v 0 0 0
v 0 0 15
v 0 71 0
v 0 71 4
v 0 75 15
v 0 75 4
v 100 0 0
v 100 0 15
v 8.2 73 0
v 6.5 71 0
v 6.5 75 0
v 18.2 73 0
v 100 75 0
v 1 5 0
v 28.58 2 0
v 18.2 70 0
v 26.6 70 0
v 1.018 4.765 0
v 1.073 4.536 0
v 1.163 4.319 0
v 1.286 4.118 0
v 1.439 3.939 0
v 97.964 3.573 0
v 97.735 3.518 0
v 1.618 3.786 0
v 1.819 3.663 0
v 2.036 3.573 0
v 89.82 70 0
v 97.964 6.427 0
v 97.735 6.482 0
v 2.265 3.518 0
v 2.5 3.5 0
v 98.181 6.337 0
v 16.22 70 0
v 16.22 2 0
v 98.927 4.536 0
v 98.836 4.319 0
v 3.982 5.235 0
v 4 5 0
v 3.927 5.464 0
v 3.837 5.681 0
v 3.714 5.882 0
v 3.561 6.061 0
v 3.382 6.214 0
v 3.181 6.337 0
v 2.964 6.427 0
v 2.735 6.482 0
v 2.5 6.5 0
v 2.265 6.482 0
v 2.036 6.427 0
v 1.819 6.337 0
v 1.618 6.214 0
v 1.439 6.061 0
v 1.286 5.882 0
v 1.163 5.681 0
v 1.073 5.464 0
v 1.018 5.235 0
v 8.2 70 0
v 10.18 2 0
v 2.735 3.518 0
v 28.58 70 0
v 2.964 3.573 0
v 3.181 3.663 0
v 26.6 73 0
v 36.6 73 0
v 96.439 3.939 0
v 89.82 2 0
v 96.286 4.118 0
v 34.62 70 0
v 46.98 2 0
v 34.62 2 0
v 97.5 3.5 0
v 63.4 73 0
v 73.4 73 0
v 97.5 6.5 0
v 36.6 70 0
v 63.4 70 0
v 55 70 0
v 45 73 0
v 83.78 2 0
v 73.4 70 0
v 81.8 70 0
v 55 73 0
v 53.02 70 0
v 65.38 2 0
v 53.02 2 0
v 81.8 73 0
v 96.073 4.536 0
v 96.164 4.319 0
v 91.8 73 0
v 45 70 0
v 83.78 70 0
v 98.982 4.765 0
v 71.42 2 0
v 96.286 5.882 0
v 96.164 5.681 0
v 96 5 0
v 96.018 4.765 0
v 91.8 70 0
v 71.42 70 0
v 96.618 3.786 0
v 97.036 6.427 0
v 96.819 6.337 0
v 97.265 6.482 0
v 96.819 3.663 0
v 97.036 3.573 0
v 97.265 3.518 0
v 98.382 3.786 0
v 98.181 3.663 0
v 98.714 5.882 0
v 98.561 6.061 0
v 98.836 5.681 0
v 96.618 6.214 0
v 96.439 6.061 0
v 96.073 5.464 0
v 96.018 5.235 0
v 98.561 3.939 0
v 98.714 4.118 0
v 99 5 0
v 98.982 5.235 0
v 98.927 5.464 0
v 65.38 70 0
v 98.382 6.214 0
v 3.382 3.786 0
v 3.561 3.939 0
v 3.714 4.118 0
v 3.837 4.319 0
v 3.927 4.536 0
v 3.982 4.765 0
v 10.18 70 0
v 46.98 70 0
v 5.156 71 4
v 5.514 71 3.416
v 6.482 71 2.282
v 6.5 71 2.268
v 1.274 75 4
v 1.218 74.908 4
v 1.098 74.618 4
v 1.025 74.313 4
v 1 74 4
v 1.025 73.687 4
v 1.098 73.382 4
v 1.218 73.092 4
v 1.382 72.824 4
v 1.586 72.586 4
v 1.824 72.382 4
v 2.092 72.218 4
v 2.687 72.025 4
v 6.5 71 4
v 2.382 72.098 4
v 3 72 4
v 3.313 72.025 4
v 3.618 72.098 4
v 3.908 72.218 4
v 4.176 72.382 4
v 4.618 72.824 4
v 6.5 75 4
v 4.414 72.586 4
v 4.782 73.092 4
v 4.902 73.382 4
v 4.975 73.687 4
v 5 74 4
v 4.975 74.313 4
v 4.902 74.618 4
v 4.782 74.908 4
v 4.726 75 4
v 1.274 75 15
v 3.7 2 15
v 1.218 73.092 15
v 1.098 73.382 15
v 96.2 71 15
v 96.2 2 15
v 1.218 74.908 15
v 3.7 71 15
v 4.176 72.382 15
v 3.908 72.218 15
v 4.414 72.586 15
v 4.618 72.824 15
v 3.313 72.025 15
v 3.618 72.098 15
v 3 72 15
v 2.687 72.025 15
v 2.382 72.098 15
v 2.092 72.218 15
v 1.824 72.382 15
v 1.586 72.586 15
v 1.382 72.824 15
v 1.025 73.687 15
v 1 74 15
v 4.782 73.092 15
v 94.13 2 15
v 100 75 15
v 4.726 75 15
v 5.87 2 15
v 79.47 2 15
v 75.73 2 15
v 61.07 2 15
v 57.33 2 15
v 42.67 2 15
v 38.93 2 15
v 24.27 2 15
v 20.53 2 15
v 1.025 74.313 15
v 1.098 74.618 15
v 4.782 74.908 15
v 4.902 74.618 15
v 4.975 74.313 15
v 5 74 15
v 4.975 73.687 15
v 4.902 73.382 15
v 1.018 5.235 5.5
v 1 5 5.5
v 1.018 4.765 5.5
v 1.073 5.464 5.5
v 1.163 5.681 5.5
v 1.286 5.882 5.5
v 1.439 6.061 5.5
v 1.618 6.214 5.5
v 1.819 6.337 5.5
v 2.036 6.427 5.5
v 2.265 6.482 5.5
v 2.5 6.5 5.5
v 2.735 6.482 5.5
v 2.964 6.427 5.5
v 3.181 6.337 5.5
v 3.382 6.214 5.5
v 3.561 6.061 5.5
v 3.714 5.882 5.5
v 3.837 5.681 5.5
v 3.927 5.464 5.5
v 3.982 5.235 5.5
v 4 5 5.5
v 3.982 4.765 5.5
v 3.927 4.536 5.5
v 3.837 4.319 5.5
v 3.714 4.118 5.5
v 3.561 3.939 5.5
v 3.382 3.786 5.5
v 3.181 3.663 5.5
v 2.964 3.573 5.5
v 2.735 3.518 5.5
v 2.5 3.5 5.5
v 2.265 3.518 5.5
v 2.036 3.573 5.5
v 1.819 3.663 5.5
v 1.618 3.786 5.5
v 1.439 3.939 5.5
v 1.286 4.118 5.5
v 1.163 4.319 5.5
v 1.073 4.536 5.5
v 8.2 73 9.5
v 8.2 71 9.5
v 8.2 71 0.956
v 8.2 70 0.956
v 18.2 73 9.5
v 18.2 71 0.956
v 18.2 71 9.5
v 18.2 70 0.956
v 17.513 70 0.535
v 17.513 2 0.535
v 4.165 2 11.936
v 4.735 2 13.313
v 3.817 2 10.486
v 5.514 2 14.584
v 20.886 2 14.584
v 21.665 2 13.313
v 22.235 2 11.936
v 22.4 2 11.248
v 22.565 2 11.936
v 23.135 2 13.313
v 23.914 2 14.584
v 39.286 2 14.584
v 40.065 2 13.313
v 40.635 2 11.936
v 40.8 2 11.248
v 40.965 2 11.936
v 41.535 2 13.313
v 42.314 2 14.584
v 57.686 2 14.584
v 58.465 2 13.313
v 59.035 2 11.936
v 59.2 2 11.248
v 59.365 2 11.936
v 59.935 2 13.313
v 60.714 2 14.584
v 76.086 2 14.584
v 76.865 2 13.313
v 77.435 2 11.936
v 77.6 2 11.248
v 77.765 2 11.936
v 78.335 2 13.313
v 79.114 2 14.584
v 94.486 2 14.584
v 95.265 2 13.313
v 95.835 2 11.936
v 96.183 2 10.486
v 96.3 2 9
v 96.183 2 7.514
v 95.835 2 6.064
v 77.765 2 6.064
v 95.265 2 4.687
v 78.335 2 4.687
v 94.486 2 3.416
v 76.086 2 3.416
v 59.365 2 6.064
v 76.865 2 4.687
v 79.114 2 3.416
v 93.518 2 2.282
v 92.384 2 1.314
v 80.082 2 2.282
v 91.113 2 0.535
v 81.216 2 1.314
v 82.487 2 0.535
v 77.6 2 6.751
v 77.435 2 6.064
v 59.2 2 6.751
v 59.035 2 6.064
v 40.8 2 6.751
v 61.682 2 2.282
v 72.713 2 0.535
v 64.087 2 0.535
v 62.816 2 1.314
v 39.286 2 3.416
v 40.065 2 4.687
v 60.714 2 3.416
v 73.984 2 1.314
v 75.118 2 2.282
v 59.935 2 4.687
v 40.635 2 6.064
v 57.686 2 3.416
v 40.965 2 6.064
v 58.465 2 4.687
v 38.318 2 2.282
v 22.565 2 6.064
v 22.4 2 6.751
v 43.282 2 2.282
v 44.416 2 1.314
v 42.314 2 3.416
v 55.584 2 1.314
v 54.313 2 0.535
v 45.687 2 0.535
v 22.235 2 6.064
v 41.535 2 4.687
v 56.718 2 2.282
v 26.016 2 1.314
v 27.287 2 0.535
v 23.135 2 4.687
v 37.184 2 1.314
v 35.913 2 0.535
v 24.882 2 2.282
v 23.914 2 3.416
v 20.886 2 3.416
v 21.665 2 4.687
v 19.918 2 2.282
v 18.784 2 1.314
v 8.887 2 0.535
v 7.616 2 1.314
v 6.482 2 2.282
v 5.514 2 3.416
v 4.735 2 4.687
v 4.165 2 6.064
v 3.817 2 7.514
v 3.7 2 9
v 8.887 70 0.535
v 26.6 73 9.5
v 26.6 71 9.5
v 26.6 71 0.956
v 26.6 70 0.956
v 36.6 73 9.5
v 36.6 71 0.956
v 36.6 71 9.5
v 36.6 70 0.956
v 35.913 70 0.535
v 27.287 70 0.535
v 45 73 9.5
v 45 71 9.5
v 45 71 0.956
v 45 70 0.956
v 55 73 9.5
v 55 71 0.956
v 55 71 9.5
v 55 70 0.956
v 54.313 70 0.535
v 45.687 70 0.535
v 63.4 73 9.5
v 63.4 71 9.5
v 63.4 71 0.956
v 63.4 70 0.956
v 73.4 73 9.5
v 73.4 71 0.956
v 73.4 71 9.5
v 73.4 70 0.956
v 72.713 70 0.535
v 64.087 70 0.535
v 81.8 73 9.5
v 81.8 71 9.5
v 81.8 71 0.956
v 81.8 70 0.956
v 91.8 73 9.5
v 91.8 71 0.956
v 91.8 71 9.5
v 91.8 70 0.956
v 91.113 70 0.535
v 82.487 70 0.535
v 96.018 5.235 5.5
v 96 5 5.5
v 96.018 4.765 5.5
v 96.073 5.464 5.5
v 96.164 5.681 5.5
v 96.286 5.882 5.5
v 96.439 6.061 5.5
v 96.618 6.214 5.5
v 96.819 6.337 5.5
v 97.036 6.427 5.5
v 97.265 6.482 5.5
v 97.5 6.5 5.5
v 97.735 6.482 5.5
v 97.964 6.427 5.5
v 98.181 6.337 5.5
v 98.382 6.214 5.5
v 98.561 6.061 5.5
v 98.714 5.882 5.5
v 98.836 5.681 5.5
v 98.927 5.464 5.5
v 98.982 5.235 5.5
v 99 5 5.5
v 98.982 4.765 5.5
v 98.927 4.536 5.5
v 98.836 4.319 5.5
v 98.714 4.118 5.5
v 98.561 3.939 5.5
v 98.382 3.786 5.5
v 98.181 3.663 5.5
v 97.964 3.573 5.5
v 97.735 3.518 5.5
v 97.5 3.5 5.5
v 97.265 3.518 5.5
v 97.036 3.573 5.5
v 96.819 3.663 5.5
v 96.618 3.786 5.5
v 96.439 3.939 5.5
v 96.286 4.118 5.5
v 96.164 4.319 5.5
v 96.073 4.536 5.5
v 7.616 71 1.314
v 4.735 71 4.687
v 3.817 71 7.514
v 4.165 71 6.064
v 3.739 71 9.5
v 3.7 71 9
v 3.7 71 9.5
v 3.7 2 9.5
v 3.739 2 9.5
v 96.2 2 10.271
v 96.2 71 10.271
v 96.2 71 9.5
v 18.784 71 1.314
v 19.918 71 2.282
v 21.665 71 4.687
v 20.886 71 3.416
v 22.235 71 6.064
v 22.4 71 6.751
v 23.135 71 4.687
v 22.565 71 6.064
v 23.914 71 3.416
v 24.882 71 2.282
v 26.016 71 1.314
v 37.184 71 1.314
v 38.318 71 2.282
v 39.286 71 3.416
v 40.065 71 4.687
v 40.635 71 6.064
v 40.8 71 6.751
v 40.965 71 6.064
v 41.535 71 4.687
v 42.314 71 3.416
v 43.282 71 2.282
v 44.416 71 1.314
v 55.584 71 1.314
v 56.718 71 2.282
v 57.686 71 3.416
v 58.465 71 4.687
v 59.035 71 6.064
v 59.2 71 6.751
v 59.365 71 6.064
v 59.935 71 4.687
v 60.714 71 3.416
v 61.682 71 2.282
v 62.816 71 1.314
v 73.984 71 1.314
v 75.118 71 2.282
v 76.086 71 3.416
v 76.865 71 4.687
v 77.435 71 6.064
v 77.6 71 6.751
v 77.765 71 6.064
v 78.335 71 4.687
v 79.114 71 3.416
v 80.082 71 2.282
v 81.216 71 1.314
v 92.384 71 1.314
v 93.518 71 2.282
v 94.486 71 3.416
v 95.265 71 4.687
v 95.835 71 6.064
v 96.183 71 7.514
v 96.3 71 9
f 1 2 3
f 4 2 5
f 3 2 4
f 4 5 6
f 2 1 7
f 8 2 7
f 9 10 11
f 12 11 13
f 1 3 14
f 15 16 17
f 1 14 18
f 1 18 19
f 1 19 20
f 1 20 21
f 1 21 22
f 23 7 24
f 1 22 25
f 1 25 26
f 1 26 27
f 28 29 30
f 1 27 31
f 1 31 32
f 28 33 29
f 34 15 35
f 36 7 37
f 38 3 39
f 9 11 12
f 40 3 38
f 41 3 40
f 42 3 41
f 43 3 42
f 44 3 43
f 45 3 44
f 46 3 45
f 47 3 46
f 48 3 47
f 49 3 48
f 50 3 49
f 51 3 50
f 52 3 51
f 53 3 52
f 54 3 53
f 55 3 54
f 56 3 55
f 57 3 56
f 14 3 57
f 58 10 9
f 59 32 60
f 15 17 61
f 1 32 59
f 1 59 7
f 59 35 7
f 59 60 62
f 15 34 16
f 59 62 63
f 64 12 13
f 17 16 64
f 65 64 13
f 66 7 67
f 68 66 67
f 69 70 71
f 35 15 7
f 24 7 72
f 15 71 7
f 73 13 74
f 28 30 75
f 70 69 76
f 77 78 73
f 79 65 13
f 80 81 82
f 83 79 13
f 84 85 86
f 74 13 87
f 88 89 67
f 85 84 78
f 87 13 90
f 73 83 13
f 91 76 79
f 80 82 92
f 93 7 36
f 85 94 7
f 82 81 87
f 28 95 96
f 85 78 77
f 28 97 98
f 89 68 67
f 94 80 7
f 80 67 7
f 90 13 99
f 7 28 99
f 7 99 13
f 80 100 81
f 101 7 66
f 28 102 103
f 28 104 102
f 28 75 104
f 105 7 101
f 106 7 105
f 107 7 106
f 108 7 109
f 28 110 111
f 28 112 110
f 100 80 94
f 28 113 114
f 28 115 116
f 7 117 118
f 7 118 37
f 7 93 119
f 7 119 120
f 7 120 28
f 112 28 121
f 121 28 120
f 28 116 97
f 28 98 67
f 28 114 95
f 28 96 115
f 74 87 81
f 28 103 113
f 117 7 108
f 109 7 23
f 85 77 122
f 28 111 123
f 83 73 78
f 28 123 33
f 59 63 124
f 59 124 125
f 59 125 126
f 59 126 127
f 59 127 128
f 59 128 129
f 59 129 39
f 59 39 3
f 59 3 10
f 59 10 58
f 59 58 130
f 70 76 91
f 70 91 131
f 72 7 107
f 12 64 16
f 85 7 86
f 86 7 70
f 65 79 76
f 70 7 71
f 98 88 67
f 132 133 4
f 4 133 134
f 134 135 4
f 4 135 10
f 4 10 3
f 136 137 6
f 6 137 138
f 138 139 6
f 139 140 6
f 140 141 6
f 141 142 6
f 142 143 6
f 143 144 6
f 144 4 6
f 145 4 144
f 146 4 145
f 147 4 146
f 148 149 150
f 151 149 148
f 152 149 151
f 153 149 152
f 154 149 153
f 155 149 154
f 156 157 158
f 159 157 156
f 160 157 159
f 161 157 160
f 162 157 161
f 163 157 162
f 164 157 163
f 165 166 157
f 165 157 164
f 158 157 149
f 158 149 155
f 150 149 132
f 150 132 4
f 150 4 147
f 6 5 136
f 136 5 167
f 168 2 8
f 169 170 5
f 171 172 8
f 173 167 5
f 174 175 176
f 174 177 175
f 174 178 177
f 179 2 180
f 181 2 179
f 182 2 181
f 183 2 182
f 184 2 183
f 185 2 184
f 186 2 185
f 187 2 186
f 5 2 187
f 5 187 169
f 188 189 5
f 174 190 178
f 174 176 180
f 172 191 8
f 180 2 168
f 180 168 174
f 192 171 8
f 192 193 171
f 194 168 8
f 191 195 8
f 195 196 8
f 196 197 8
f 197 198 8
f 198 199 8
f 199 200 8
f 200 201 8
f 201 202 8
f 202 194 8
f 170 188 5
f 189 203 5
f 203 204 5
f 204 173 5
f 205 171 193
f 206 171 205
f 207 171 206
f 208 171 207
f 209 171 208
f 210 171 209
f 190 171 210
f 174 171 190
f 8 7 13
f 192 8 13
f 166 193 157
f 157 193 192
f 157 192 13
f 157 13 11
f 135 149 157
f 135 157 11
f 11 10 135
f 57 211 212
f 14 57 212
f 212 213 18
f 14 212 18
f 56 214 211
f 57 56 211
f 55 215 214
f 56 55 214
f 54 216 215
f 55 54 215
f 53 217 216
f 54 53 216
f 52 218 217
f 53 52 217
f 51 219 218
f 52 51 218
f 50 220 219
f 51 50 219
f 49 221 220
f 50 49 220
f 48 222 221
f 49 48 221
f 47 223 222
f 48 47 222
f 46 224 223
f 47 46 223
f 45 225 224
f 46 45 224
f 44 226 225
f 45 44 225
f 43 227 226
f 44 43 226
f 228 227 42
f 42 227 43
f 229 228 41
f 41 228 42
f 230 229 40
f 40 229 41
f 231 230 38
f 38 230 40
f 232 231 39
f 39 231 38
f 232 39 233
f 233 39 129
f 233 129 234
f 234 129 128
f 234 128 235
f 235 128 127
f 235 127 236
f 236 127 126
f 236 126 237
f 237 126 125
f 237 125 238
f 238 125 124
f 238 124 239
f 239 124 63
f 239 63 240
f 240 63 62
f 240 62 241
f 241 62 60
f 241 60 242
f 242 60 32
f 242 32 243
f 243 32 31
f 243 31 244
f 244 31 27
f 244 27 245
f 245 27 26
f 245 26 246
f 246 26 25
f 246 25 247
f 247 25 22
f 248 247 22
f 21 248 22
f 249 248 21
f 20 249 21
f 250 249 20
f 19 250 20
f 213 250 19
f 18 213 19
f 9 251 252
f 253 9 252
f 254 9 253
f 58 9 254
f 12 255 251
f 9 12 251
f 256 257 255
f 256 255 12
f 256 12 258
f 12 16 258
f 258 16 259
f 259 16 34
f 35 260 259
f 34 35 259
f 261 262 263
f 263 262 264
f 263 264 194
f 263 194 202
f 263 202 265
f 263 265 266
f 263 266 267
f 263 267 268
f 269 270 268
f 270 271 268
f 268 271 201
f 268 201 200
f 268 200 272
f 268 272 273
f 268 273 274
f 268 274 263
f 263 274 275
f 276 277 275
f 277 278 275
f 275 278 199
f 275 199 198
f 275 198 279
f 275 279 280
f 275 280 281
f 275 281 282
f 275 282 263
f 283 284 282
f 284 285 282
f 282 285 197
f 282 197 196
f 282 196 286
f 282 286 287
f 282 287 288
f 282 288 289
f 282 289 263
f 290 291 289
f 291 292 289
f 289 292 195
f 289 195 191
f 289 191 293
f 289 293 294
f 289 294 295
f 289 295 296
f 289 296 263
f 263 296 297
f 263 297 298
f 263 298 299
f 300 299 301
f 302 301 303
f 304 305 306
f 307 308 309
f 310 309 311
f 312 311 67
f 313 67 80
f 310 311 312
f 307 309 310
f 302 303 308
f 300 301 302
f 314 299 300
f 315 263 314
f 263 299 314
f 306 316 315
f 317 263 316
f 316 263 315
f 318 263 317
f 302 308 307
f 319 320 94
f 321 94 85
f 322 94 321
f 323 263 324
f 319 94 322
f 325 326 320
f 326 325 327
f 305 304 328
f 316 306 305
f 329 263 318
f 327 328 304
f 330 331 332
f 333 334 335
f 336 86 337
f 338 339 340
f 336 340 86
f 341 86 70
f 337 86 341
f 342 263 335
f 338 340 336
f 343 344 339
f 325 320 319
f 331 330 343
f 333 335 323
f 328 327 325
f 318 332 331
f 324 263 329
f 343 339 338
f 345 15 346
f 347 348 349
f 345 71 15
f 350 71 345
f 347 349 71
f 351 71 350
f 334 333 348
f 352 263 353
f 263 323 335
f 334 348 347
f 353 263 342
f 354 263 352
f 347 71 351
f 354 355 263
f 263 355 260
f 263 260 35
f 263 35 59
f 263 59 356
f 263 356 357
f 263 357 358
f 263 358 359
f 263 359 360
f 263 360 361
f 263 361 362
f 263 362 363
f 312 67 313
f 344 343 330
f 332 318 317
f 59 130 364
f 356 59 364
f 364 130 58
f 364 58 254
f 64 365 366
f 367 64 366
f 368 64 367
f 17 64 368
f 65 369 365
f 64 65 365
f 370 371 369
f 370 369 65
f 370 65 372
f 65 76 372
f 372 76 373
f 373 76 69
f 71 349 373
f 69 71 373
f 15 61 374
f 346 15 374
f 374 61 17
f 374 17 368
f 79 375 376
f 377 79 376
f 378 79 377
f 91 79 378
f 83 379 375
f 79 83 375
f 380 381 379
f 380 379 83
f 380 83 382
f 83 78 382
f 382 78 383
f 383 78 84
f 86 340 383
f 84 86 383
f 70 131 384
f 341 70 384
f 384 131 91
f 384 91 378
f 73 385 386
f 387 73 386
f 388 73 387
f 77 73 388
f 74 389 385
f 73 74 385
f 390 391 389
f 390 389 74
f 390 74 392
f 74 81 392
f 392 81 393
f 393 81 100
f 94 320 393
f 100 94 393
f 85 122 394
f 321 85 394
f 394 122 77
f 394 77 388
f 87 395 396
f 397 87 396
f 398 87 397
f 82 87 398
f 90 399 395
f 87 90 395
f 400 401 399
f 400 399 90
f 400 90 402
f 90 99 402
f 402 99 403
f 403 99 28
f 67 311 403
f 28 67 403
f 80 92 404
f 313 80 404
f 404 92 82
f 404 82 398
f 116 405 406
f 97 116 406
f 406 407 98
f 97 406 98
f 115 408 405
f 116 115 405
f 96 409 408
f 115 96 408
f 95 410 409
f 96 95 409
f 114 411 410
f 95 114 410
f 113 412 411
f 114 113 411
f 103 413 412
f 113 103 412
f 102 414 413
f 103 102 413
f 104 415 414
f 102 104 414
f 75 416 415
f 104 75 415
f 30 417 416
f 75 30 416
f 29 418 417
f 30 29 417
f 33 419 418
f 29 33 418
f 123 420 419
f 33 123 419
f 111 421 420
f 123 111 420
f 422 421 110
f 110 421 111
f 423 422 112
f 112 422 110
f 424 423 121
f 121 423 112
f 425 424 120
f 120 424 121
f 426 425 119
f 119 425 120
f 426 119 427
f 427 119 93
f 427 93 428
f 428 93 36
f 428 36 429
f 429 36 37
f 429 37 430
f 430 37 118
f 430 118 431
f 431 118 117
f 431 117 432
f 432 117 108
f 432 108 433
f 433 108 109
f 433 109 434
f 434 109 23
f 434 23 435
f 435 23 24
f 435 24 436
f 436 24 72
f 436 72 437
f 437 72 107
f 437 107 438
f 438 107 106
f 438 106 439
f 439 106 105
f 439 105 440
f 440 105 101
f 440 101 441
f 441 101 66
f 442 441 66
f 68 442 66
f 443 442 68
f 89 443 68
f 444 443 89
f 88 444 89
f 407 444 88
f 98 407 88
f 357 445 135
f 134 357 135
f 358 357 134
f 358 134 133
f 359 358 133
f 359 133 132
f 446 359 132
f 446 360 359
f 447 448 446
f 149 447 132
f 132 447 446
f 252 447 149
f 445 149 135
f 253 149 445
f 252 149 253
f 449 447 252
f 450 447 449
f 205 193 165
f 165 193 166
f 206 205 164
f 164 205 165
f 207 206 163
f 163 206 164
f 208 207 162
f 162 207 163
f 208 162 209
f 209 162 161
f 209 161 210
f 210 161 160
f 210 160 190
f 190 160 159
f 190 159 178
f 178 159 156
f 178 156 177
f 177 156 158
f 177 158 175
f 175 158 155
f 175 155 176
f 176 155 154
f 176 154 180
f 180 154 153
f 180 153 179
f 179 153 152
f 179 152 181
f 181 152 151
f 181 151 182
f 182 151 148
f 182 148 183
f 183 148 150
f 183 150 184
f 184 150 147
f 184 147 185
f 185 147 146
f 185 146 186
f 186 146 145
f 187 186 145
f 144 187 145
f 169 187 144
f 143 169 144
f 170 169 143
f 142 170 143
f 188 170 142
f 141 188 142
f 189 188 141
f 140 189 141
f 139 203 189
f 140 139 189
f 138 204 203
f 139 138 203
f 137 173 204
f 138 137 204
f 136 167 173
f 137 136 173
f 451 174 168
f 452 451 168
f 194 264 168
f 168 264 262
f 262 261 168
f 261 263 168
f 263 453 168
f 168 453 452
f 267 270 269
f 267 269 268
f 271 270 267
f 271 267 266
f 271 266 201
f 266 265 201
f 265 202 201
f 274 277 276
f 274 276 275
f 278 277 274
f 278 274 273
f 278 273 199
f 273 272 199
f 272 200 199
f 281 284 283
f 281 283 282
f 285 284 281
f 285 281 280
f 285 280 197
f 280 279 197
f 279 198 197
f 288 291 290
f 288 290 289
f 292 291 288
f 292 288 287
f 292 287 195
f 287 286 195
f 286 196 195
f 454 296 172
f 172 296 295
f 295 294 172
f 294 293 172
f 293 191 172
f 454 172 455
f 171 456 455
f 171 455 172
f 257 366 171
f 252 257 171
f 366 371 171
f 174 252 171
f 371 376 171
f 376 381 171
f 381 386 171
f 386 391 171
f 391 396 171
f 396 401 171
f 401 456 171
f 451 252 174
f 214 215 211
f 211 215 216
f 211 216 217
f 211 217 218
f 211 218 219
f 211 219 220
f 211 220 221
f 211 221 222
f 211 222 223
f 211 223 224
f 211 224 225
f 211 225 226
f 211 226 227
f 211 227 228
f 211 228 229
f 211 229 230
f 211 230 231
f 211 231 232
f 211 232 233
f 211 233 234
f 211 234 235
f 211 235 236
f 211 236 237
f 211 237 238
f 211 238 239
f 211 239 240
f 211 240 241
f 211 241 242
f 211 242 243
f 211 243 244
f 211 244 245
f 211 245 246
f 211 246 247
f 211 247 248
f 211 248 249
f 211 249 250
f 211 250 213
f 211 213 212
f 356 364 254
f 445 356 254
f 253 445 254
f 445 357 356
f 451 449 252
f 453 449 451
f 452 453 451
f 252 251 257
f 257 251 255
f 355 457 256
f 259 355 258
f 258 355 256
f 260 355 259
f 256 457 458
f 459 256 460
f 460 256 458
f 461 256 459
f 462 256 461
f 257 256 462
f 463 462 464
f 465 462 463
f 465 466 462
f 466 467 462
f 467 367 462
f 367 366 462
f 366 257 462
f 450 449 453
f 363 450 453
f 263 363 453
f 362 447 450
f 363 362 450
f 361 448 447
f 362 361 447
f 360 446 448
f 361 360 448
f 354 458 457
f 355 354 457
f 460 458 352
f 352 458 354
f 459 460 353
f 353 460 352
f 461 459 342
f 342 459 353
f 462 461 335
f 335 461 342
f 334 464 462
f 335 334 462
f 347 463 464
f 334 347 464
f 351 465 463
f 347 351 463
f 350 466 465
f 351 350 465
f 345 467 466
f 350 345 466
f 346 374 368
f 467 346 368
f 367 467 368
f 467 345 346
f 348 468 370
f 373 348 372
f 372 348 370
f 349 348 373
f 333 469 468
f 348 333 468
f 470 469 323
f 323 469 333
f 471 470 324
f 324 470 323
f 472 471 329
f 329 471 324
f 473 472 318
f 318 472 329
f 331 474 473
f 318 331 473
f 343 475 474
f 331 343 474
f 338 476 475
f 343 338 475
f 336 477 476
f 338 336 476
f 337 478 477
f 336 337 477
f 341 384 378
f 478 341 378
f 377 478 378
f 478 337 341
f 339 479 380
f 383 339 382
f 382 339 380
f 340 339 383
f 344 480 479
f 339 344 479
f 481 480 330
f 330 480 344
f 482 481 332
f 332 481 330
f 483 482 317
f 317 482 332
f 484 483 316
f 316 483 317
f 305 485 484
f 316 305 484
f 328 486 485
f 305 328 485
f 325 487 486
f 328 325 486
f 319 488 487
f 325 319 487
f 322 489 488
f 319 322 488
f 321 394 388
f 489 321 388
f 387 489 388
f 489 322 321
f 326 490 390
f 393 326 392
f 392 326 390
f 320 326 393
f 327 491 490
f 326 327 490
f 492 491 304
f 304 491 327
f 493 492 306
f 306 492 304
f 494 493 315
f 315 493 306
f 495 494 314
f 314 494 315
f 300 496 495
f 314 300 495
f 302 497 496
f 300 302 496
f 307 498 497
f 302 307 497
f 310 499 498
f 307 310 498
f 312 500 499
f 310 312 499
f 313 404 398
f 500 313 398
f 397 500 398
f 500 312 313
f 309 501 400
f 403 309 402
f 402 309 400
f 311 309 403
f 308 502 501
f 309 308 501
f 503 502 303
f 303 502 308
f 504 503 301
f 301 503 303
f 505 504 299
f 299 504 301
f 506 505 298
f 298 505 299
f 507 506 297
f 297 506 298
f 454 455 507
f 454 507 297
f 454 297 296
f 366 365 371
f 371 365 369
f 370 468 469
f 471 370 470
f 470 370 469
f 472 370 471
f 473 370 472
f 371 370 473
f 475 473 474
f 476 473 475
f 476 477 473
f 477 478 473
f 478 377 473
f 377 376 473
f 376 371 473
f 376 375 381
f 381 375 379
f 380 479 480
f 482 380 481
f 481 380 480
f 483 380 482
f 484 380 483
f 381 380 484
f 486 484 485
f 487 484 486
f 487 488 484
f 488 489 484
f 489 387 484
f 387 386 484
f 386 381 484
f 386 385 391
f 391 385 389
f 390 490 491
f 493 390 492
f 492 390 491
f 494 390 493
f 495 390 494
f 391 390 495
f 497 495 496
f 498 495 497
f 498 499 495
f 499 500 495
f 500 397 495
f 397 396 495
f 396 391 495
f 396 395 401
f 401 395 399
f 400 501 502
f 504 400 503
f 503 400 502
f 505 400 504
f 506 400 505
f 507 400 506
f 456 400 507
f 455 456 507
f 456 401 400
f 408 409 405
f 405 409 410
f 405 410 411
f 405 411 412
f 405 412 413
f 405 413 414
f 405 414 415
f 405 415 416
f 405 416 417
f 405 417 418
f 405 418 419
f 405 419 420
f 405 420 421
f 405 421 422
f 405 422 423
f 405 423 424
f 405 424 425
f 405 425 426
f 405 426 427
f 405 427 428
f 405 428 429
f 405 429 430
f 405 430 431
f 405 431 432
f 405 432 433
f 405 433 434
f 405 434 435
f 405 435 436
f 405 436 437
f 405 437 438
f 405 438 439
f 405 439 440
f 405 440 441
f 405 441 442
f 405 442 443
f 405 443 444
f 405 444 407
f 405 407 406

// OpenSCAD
// 第一版线路板的电池座
$fn=40;
x=100;
y=75;
ra=19;
z=ra/2;
xa=92;
xb=xa/5;
x1=(x-xa)/2+xa/5/2;
x2=x1+xa/5;
x3=x2+xa/5;
x4=x3+xa/5;
x5=x4+xa/5;

difference() {
cube([x,y,ra-4]);
translate([x1-z,2,z]) cube([xa+0.5,y-6,z]);
translate([x1,2,z-0.5])    rotate(90, [-1, 0, 0]) cylinder(h=69,r=z);
translate([x2,2,z-0.5])    rotate(90, [-1, 0, 0]) cylinder(h=69,r=z);
translate([x3,2,z-0.5])    rotate(90, [-1, 0, 0]) cylinder(h=69,r=z);
translate([x4,2,z-0.5])    rotate(90, [-1, 0, 0]) cylinder(h=69,r=z);
translate([x5,2,z-0.5])    rotate(90, [-1, 0, 0]) cylinder(h=69,r=z);

translate([x1,y-2-1.5,0])    cube([10,3,z*2],true);
translate([x2,y-2-1.5,0])    cube([10,3,z*2],true);
translate([x3,y-2-1.5,0])    cube([10,3,z*2],true);
translate([x4,y-2-1.5,0])    cube([10,3,z*2],true);
translate([x5,y-2-1.5,0])    cube([10,3,z*2],true);

translate([(x-95)/2,5,0]) {
cylinder(h=z-4,r=1.5);
translate([95,0,0]) cylinder(h=z-4,r=1.5);
}
translate([0,71,0]) {
cube([6.5,y-71,4]);
translate([3,3,0]) cylinder(h=z*2,r=2);
}
}
